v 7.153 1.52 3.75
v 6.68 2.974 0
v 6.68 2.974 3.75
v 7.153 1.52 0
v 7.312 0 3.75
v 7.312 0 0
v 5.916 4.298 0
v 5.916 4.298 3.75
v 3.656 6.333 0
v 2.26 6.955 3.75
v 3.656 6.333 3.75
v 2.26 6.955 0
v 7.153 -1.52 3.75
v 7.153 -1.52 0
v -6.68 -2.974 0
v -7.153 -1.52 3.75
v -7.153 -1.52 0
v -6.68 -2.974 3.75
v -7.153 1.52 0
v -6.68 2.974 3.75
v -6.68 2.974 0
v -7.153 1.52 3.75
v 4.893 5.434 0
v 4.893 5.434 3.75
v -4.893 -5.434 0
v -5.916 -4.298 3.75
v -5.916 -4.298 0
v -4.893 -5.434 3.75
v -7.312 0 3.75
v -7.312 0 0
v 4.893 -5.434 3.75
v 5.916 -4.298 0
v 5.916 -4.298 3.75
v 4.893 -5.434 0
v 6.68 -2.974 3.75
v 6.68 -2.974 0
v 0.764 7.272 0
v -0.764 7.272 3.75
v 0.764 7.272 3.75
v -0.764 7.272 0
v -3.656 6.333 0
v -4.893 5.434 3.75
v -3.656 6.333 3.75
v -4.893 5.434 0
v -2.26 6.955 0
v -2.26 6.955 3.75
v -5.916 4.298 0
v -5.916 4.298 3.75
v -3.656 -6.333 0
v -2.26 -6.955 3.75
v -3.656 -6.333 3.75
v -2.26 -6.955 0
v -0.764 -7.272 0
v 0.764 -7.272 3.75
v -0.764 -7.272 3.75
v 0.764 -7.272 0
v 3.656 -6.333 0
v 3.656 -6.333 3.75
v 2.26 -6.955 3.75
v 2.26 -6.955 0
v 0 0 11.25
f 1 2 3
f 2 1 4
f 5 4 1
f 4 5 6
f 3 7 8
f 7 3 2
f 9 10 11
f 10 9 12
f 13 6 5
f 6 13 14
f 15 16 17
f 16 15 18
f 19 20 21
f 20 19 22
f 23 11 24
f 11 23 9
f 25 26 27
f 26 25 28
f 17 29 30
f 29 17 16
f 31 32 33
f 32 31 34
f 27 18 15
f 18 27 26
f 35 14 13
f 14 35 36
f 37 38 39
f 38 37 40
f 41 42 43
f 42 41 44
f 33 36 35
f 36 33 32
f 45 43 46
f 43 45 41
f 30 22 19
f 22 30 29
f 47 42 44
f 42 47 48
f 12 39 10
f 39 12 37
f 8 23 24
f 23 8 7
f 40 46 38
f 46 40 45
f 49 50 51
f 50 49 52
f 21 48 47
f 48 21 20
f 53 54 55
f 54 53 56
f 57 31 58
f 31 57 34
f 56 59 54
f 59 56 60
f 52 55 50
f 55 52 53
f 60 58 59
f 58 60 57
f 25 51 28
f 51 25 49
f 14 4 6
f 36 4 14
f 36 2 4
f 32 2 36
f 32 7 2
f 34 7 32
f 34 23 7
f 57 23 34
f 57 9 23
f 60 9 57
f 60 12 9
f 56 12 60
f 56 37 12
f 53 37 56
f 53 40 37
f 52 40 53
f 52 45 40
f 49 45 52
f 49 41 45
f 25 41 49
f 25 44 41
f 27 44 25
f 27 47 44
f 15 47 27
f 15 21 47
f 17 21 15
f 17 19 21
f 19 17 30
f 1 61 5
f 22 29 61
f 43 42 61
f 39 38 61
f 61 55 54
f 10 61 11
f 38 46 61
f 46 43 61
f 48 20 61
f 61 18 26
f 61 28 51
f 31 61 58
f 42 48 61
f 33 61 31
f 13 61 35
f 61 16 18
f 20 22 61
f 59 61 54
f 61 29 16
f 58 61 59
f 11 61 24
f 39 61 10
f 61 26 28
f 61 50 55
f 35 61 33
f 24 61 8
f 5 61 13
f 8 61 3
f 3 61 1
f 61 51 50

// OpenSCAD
// file: CommonModules.scad
//    $$$$$$\   $$$$$$\   $$$$$$\  $$\   $$\ $$$$$$\ $$$$$$$\  $$$$$$$$\ 
//    $$  __$$\ $$  __$$\ $$  __$$\ $$ |  $$ |\_$$  _|$$  __$$\ $$  _____|
//    $$ /  $$ |$$ /  \__|$$ /  $$ |$$ |  $$ |  $$ |  $$ |  $$ |$$ |      
//    $$$$$$$$ |$$ |      $$ |  $$ |$$ |  $$ |  $$ |  $$$$$$$  |$$$$$\    
//    $$  __$$ |$$ |      $$ |  $$ |$$ |  $$ |  $$ |  $$  __$$< $$  __|   
//    $$ |  $$ |$$ |  $$\ $$ $$\$$ |$$ |  $$ |  $$ |  $$ |  $$ |$$ |      
//    $$ |  $$ |\$$$$$$  |\$$$$$$ / \$$$$$$  |$$$$$$\ $$ |  $$ |$$$$$$$$\ 
//    \__|  \__| \______/  \___$$$\  \______/ \______|\__|  \__|\________|
//                            \___|                                      
//      
//       Print and play - OpenScad project - by Bekkalizer - GPLv3
// 
// This file is part of the Acquire stl project.
// Copyright (C) 2025 Bekkalizer
//
// Acquire stl project is free software: you can redistribute it and/or modify
// it under the terms of the GNU General Public License as published
// by the Free Software Foundation, either version 3 of the License,
// or (at your option) any later version.
//
// Acquire stl project is distributed in the hope that it will be useful,
// but WITHOUT ANY WARRANTY; without even the implied warranty of
// MERCHANTABILITY or FITNESS FOR A PARTICULAR PURPOSE. See the
// GNU General Public License for more details.
//
// You should have received a copy of the GNU General Public License
// along with this program. If not, see <https://www.gnu.org/licenses/>.

module cube_with_extruded_bottom( cube_size = [19.5, 19.5, 5] ) {
    //Main build script parameters:
    max_width = 19.2;
    top_lip = 2;
    top_height = 3;
    //Calculated hole size:
    inside_margins = 1;
    hole_width = max_width - 2 * (top_lip) + inside_margins;
    hole_height = top_height + inside_margins;
    
    hole_size = [hole_width, hole_width, hole_height]; // Hole dimensions (same height as cube)
    hole_offset = [(cube_size[0] - hole_size[0]) / 2, (cube_size[1] - hole_size[1]) / 2, -0.1]; // Centered on bottom
    difference() {
        // Main Cube
        cube(cube_size);
        
        // Hole Cube (subtracting from bottom)
        translate(hole_offset)
            cube(hole_size);
    }
}
// main file
//    $$$$$$\   $$$$$$\   $$$$$$\  $$\   $$\ $$$$$$\ $$$$$$$\  $$$$$$$$\
//    $$  __$$\ $$  __$$\ $$  __$$\ $$ |  $$ |\_$$  _|$$  __$$\ $$  _____|
//    $$ /  $$ |$$ /  \__|$$ /  $$ |$$ |  $$ |  $$ |  $$ |  $$ |$$ |
//    $$$$$$$$ |$$ |      $$ |  $$ |$$ |  $$ |  $$ |  $$$$$$$  |$$$$$\
//    $$  __$$ |$$ |      $$ |  $$ |$$ |  $$ |  $$ |  $$  __$$< $$  __|
//    $$ |  $$ |$$ |  $$\ $$ $$\$$ |$$ |  $$ |  $$ |  $$ |  $$ |$$ |
//    $$ |  $$ |\$$$$$$  |\$$$$$$ / \$$$$$$  |$$$$$$\ $$ |  $$ |$$$$$$$$\
//    \__|  \__| \______/  \___$$$\  \______/ \______|\__|  \__|\________|
//                            \___|
//
//       Print and play - OpenScad project - by Bekkalizer and Claude
//
// This file is part of the Acquire stl project.
// Copyright (C) 2025 Bekkalizer
//
// Acquire stl project is free software: you can redistribute it and/or modify
// it under the terms of the GNU General Public License as published
// by the Free Software Foundation, either version 3 of the License,
// or (at your option) any later version.
//
// Acquire stl project is distributed in the hope that it will be useful,
// but WITHOUT ANY WARRANTY; without even the implied warranty of
// MERCHANTABILITY or FITNESS FOR A PARTICULAR PURPOSE. See the
// GNU General Public License for more details.
//
// You should have received a copy of the GNU General Public License
// along with this program. If not, see <https://www.gnu.org/licenses/>.

use <CommonModules.scad>

// ============== Parameters ==============
$fn = 30;

scale_factor = 3/4;

tent_radius = 9.75 * scale_factor;           // ~3.25
tent_wall_height = 5 * scale_factor;         // ~1.67
tent_height = 15 * scale_factor;             // 5

union() {
    cylinder(h = tent_wall_height, r = tent_radius);
    translate([0, 0, tent_wall_height])
        cylinder(h = tent_height - tent_wall_height, r1 = tent_radius, r2 = 0);
}
